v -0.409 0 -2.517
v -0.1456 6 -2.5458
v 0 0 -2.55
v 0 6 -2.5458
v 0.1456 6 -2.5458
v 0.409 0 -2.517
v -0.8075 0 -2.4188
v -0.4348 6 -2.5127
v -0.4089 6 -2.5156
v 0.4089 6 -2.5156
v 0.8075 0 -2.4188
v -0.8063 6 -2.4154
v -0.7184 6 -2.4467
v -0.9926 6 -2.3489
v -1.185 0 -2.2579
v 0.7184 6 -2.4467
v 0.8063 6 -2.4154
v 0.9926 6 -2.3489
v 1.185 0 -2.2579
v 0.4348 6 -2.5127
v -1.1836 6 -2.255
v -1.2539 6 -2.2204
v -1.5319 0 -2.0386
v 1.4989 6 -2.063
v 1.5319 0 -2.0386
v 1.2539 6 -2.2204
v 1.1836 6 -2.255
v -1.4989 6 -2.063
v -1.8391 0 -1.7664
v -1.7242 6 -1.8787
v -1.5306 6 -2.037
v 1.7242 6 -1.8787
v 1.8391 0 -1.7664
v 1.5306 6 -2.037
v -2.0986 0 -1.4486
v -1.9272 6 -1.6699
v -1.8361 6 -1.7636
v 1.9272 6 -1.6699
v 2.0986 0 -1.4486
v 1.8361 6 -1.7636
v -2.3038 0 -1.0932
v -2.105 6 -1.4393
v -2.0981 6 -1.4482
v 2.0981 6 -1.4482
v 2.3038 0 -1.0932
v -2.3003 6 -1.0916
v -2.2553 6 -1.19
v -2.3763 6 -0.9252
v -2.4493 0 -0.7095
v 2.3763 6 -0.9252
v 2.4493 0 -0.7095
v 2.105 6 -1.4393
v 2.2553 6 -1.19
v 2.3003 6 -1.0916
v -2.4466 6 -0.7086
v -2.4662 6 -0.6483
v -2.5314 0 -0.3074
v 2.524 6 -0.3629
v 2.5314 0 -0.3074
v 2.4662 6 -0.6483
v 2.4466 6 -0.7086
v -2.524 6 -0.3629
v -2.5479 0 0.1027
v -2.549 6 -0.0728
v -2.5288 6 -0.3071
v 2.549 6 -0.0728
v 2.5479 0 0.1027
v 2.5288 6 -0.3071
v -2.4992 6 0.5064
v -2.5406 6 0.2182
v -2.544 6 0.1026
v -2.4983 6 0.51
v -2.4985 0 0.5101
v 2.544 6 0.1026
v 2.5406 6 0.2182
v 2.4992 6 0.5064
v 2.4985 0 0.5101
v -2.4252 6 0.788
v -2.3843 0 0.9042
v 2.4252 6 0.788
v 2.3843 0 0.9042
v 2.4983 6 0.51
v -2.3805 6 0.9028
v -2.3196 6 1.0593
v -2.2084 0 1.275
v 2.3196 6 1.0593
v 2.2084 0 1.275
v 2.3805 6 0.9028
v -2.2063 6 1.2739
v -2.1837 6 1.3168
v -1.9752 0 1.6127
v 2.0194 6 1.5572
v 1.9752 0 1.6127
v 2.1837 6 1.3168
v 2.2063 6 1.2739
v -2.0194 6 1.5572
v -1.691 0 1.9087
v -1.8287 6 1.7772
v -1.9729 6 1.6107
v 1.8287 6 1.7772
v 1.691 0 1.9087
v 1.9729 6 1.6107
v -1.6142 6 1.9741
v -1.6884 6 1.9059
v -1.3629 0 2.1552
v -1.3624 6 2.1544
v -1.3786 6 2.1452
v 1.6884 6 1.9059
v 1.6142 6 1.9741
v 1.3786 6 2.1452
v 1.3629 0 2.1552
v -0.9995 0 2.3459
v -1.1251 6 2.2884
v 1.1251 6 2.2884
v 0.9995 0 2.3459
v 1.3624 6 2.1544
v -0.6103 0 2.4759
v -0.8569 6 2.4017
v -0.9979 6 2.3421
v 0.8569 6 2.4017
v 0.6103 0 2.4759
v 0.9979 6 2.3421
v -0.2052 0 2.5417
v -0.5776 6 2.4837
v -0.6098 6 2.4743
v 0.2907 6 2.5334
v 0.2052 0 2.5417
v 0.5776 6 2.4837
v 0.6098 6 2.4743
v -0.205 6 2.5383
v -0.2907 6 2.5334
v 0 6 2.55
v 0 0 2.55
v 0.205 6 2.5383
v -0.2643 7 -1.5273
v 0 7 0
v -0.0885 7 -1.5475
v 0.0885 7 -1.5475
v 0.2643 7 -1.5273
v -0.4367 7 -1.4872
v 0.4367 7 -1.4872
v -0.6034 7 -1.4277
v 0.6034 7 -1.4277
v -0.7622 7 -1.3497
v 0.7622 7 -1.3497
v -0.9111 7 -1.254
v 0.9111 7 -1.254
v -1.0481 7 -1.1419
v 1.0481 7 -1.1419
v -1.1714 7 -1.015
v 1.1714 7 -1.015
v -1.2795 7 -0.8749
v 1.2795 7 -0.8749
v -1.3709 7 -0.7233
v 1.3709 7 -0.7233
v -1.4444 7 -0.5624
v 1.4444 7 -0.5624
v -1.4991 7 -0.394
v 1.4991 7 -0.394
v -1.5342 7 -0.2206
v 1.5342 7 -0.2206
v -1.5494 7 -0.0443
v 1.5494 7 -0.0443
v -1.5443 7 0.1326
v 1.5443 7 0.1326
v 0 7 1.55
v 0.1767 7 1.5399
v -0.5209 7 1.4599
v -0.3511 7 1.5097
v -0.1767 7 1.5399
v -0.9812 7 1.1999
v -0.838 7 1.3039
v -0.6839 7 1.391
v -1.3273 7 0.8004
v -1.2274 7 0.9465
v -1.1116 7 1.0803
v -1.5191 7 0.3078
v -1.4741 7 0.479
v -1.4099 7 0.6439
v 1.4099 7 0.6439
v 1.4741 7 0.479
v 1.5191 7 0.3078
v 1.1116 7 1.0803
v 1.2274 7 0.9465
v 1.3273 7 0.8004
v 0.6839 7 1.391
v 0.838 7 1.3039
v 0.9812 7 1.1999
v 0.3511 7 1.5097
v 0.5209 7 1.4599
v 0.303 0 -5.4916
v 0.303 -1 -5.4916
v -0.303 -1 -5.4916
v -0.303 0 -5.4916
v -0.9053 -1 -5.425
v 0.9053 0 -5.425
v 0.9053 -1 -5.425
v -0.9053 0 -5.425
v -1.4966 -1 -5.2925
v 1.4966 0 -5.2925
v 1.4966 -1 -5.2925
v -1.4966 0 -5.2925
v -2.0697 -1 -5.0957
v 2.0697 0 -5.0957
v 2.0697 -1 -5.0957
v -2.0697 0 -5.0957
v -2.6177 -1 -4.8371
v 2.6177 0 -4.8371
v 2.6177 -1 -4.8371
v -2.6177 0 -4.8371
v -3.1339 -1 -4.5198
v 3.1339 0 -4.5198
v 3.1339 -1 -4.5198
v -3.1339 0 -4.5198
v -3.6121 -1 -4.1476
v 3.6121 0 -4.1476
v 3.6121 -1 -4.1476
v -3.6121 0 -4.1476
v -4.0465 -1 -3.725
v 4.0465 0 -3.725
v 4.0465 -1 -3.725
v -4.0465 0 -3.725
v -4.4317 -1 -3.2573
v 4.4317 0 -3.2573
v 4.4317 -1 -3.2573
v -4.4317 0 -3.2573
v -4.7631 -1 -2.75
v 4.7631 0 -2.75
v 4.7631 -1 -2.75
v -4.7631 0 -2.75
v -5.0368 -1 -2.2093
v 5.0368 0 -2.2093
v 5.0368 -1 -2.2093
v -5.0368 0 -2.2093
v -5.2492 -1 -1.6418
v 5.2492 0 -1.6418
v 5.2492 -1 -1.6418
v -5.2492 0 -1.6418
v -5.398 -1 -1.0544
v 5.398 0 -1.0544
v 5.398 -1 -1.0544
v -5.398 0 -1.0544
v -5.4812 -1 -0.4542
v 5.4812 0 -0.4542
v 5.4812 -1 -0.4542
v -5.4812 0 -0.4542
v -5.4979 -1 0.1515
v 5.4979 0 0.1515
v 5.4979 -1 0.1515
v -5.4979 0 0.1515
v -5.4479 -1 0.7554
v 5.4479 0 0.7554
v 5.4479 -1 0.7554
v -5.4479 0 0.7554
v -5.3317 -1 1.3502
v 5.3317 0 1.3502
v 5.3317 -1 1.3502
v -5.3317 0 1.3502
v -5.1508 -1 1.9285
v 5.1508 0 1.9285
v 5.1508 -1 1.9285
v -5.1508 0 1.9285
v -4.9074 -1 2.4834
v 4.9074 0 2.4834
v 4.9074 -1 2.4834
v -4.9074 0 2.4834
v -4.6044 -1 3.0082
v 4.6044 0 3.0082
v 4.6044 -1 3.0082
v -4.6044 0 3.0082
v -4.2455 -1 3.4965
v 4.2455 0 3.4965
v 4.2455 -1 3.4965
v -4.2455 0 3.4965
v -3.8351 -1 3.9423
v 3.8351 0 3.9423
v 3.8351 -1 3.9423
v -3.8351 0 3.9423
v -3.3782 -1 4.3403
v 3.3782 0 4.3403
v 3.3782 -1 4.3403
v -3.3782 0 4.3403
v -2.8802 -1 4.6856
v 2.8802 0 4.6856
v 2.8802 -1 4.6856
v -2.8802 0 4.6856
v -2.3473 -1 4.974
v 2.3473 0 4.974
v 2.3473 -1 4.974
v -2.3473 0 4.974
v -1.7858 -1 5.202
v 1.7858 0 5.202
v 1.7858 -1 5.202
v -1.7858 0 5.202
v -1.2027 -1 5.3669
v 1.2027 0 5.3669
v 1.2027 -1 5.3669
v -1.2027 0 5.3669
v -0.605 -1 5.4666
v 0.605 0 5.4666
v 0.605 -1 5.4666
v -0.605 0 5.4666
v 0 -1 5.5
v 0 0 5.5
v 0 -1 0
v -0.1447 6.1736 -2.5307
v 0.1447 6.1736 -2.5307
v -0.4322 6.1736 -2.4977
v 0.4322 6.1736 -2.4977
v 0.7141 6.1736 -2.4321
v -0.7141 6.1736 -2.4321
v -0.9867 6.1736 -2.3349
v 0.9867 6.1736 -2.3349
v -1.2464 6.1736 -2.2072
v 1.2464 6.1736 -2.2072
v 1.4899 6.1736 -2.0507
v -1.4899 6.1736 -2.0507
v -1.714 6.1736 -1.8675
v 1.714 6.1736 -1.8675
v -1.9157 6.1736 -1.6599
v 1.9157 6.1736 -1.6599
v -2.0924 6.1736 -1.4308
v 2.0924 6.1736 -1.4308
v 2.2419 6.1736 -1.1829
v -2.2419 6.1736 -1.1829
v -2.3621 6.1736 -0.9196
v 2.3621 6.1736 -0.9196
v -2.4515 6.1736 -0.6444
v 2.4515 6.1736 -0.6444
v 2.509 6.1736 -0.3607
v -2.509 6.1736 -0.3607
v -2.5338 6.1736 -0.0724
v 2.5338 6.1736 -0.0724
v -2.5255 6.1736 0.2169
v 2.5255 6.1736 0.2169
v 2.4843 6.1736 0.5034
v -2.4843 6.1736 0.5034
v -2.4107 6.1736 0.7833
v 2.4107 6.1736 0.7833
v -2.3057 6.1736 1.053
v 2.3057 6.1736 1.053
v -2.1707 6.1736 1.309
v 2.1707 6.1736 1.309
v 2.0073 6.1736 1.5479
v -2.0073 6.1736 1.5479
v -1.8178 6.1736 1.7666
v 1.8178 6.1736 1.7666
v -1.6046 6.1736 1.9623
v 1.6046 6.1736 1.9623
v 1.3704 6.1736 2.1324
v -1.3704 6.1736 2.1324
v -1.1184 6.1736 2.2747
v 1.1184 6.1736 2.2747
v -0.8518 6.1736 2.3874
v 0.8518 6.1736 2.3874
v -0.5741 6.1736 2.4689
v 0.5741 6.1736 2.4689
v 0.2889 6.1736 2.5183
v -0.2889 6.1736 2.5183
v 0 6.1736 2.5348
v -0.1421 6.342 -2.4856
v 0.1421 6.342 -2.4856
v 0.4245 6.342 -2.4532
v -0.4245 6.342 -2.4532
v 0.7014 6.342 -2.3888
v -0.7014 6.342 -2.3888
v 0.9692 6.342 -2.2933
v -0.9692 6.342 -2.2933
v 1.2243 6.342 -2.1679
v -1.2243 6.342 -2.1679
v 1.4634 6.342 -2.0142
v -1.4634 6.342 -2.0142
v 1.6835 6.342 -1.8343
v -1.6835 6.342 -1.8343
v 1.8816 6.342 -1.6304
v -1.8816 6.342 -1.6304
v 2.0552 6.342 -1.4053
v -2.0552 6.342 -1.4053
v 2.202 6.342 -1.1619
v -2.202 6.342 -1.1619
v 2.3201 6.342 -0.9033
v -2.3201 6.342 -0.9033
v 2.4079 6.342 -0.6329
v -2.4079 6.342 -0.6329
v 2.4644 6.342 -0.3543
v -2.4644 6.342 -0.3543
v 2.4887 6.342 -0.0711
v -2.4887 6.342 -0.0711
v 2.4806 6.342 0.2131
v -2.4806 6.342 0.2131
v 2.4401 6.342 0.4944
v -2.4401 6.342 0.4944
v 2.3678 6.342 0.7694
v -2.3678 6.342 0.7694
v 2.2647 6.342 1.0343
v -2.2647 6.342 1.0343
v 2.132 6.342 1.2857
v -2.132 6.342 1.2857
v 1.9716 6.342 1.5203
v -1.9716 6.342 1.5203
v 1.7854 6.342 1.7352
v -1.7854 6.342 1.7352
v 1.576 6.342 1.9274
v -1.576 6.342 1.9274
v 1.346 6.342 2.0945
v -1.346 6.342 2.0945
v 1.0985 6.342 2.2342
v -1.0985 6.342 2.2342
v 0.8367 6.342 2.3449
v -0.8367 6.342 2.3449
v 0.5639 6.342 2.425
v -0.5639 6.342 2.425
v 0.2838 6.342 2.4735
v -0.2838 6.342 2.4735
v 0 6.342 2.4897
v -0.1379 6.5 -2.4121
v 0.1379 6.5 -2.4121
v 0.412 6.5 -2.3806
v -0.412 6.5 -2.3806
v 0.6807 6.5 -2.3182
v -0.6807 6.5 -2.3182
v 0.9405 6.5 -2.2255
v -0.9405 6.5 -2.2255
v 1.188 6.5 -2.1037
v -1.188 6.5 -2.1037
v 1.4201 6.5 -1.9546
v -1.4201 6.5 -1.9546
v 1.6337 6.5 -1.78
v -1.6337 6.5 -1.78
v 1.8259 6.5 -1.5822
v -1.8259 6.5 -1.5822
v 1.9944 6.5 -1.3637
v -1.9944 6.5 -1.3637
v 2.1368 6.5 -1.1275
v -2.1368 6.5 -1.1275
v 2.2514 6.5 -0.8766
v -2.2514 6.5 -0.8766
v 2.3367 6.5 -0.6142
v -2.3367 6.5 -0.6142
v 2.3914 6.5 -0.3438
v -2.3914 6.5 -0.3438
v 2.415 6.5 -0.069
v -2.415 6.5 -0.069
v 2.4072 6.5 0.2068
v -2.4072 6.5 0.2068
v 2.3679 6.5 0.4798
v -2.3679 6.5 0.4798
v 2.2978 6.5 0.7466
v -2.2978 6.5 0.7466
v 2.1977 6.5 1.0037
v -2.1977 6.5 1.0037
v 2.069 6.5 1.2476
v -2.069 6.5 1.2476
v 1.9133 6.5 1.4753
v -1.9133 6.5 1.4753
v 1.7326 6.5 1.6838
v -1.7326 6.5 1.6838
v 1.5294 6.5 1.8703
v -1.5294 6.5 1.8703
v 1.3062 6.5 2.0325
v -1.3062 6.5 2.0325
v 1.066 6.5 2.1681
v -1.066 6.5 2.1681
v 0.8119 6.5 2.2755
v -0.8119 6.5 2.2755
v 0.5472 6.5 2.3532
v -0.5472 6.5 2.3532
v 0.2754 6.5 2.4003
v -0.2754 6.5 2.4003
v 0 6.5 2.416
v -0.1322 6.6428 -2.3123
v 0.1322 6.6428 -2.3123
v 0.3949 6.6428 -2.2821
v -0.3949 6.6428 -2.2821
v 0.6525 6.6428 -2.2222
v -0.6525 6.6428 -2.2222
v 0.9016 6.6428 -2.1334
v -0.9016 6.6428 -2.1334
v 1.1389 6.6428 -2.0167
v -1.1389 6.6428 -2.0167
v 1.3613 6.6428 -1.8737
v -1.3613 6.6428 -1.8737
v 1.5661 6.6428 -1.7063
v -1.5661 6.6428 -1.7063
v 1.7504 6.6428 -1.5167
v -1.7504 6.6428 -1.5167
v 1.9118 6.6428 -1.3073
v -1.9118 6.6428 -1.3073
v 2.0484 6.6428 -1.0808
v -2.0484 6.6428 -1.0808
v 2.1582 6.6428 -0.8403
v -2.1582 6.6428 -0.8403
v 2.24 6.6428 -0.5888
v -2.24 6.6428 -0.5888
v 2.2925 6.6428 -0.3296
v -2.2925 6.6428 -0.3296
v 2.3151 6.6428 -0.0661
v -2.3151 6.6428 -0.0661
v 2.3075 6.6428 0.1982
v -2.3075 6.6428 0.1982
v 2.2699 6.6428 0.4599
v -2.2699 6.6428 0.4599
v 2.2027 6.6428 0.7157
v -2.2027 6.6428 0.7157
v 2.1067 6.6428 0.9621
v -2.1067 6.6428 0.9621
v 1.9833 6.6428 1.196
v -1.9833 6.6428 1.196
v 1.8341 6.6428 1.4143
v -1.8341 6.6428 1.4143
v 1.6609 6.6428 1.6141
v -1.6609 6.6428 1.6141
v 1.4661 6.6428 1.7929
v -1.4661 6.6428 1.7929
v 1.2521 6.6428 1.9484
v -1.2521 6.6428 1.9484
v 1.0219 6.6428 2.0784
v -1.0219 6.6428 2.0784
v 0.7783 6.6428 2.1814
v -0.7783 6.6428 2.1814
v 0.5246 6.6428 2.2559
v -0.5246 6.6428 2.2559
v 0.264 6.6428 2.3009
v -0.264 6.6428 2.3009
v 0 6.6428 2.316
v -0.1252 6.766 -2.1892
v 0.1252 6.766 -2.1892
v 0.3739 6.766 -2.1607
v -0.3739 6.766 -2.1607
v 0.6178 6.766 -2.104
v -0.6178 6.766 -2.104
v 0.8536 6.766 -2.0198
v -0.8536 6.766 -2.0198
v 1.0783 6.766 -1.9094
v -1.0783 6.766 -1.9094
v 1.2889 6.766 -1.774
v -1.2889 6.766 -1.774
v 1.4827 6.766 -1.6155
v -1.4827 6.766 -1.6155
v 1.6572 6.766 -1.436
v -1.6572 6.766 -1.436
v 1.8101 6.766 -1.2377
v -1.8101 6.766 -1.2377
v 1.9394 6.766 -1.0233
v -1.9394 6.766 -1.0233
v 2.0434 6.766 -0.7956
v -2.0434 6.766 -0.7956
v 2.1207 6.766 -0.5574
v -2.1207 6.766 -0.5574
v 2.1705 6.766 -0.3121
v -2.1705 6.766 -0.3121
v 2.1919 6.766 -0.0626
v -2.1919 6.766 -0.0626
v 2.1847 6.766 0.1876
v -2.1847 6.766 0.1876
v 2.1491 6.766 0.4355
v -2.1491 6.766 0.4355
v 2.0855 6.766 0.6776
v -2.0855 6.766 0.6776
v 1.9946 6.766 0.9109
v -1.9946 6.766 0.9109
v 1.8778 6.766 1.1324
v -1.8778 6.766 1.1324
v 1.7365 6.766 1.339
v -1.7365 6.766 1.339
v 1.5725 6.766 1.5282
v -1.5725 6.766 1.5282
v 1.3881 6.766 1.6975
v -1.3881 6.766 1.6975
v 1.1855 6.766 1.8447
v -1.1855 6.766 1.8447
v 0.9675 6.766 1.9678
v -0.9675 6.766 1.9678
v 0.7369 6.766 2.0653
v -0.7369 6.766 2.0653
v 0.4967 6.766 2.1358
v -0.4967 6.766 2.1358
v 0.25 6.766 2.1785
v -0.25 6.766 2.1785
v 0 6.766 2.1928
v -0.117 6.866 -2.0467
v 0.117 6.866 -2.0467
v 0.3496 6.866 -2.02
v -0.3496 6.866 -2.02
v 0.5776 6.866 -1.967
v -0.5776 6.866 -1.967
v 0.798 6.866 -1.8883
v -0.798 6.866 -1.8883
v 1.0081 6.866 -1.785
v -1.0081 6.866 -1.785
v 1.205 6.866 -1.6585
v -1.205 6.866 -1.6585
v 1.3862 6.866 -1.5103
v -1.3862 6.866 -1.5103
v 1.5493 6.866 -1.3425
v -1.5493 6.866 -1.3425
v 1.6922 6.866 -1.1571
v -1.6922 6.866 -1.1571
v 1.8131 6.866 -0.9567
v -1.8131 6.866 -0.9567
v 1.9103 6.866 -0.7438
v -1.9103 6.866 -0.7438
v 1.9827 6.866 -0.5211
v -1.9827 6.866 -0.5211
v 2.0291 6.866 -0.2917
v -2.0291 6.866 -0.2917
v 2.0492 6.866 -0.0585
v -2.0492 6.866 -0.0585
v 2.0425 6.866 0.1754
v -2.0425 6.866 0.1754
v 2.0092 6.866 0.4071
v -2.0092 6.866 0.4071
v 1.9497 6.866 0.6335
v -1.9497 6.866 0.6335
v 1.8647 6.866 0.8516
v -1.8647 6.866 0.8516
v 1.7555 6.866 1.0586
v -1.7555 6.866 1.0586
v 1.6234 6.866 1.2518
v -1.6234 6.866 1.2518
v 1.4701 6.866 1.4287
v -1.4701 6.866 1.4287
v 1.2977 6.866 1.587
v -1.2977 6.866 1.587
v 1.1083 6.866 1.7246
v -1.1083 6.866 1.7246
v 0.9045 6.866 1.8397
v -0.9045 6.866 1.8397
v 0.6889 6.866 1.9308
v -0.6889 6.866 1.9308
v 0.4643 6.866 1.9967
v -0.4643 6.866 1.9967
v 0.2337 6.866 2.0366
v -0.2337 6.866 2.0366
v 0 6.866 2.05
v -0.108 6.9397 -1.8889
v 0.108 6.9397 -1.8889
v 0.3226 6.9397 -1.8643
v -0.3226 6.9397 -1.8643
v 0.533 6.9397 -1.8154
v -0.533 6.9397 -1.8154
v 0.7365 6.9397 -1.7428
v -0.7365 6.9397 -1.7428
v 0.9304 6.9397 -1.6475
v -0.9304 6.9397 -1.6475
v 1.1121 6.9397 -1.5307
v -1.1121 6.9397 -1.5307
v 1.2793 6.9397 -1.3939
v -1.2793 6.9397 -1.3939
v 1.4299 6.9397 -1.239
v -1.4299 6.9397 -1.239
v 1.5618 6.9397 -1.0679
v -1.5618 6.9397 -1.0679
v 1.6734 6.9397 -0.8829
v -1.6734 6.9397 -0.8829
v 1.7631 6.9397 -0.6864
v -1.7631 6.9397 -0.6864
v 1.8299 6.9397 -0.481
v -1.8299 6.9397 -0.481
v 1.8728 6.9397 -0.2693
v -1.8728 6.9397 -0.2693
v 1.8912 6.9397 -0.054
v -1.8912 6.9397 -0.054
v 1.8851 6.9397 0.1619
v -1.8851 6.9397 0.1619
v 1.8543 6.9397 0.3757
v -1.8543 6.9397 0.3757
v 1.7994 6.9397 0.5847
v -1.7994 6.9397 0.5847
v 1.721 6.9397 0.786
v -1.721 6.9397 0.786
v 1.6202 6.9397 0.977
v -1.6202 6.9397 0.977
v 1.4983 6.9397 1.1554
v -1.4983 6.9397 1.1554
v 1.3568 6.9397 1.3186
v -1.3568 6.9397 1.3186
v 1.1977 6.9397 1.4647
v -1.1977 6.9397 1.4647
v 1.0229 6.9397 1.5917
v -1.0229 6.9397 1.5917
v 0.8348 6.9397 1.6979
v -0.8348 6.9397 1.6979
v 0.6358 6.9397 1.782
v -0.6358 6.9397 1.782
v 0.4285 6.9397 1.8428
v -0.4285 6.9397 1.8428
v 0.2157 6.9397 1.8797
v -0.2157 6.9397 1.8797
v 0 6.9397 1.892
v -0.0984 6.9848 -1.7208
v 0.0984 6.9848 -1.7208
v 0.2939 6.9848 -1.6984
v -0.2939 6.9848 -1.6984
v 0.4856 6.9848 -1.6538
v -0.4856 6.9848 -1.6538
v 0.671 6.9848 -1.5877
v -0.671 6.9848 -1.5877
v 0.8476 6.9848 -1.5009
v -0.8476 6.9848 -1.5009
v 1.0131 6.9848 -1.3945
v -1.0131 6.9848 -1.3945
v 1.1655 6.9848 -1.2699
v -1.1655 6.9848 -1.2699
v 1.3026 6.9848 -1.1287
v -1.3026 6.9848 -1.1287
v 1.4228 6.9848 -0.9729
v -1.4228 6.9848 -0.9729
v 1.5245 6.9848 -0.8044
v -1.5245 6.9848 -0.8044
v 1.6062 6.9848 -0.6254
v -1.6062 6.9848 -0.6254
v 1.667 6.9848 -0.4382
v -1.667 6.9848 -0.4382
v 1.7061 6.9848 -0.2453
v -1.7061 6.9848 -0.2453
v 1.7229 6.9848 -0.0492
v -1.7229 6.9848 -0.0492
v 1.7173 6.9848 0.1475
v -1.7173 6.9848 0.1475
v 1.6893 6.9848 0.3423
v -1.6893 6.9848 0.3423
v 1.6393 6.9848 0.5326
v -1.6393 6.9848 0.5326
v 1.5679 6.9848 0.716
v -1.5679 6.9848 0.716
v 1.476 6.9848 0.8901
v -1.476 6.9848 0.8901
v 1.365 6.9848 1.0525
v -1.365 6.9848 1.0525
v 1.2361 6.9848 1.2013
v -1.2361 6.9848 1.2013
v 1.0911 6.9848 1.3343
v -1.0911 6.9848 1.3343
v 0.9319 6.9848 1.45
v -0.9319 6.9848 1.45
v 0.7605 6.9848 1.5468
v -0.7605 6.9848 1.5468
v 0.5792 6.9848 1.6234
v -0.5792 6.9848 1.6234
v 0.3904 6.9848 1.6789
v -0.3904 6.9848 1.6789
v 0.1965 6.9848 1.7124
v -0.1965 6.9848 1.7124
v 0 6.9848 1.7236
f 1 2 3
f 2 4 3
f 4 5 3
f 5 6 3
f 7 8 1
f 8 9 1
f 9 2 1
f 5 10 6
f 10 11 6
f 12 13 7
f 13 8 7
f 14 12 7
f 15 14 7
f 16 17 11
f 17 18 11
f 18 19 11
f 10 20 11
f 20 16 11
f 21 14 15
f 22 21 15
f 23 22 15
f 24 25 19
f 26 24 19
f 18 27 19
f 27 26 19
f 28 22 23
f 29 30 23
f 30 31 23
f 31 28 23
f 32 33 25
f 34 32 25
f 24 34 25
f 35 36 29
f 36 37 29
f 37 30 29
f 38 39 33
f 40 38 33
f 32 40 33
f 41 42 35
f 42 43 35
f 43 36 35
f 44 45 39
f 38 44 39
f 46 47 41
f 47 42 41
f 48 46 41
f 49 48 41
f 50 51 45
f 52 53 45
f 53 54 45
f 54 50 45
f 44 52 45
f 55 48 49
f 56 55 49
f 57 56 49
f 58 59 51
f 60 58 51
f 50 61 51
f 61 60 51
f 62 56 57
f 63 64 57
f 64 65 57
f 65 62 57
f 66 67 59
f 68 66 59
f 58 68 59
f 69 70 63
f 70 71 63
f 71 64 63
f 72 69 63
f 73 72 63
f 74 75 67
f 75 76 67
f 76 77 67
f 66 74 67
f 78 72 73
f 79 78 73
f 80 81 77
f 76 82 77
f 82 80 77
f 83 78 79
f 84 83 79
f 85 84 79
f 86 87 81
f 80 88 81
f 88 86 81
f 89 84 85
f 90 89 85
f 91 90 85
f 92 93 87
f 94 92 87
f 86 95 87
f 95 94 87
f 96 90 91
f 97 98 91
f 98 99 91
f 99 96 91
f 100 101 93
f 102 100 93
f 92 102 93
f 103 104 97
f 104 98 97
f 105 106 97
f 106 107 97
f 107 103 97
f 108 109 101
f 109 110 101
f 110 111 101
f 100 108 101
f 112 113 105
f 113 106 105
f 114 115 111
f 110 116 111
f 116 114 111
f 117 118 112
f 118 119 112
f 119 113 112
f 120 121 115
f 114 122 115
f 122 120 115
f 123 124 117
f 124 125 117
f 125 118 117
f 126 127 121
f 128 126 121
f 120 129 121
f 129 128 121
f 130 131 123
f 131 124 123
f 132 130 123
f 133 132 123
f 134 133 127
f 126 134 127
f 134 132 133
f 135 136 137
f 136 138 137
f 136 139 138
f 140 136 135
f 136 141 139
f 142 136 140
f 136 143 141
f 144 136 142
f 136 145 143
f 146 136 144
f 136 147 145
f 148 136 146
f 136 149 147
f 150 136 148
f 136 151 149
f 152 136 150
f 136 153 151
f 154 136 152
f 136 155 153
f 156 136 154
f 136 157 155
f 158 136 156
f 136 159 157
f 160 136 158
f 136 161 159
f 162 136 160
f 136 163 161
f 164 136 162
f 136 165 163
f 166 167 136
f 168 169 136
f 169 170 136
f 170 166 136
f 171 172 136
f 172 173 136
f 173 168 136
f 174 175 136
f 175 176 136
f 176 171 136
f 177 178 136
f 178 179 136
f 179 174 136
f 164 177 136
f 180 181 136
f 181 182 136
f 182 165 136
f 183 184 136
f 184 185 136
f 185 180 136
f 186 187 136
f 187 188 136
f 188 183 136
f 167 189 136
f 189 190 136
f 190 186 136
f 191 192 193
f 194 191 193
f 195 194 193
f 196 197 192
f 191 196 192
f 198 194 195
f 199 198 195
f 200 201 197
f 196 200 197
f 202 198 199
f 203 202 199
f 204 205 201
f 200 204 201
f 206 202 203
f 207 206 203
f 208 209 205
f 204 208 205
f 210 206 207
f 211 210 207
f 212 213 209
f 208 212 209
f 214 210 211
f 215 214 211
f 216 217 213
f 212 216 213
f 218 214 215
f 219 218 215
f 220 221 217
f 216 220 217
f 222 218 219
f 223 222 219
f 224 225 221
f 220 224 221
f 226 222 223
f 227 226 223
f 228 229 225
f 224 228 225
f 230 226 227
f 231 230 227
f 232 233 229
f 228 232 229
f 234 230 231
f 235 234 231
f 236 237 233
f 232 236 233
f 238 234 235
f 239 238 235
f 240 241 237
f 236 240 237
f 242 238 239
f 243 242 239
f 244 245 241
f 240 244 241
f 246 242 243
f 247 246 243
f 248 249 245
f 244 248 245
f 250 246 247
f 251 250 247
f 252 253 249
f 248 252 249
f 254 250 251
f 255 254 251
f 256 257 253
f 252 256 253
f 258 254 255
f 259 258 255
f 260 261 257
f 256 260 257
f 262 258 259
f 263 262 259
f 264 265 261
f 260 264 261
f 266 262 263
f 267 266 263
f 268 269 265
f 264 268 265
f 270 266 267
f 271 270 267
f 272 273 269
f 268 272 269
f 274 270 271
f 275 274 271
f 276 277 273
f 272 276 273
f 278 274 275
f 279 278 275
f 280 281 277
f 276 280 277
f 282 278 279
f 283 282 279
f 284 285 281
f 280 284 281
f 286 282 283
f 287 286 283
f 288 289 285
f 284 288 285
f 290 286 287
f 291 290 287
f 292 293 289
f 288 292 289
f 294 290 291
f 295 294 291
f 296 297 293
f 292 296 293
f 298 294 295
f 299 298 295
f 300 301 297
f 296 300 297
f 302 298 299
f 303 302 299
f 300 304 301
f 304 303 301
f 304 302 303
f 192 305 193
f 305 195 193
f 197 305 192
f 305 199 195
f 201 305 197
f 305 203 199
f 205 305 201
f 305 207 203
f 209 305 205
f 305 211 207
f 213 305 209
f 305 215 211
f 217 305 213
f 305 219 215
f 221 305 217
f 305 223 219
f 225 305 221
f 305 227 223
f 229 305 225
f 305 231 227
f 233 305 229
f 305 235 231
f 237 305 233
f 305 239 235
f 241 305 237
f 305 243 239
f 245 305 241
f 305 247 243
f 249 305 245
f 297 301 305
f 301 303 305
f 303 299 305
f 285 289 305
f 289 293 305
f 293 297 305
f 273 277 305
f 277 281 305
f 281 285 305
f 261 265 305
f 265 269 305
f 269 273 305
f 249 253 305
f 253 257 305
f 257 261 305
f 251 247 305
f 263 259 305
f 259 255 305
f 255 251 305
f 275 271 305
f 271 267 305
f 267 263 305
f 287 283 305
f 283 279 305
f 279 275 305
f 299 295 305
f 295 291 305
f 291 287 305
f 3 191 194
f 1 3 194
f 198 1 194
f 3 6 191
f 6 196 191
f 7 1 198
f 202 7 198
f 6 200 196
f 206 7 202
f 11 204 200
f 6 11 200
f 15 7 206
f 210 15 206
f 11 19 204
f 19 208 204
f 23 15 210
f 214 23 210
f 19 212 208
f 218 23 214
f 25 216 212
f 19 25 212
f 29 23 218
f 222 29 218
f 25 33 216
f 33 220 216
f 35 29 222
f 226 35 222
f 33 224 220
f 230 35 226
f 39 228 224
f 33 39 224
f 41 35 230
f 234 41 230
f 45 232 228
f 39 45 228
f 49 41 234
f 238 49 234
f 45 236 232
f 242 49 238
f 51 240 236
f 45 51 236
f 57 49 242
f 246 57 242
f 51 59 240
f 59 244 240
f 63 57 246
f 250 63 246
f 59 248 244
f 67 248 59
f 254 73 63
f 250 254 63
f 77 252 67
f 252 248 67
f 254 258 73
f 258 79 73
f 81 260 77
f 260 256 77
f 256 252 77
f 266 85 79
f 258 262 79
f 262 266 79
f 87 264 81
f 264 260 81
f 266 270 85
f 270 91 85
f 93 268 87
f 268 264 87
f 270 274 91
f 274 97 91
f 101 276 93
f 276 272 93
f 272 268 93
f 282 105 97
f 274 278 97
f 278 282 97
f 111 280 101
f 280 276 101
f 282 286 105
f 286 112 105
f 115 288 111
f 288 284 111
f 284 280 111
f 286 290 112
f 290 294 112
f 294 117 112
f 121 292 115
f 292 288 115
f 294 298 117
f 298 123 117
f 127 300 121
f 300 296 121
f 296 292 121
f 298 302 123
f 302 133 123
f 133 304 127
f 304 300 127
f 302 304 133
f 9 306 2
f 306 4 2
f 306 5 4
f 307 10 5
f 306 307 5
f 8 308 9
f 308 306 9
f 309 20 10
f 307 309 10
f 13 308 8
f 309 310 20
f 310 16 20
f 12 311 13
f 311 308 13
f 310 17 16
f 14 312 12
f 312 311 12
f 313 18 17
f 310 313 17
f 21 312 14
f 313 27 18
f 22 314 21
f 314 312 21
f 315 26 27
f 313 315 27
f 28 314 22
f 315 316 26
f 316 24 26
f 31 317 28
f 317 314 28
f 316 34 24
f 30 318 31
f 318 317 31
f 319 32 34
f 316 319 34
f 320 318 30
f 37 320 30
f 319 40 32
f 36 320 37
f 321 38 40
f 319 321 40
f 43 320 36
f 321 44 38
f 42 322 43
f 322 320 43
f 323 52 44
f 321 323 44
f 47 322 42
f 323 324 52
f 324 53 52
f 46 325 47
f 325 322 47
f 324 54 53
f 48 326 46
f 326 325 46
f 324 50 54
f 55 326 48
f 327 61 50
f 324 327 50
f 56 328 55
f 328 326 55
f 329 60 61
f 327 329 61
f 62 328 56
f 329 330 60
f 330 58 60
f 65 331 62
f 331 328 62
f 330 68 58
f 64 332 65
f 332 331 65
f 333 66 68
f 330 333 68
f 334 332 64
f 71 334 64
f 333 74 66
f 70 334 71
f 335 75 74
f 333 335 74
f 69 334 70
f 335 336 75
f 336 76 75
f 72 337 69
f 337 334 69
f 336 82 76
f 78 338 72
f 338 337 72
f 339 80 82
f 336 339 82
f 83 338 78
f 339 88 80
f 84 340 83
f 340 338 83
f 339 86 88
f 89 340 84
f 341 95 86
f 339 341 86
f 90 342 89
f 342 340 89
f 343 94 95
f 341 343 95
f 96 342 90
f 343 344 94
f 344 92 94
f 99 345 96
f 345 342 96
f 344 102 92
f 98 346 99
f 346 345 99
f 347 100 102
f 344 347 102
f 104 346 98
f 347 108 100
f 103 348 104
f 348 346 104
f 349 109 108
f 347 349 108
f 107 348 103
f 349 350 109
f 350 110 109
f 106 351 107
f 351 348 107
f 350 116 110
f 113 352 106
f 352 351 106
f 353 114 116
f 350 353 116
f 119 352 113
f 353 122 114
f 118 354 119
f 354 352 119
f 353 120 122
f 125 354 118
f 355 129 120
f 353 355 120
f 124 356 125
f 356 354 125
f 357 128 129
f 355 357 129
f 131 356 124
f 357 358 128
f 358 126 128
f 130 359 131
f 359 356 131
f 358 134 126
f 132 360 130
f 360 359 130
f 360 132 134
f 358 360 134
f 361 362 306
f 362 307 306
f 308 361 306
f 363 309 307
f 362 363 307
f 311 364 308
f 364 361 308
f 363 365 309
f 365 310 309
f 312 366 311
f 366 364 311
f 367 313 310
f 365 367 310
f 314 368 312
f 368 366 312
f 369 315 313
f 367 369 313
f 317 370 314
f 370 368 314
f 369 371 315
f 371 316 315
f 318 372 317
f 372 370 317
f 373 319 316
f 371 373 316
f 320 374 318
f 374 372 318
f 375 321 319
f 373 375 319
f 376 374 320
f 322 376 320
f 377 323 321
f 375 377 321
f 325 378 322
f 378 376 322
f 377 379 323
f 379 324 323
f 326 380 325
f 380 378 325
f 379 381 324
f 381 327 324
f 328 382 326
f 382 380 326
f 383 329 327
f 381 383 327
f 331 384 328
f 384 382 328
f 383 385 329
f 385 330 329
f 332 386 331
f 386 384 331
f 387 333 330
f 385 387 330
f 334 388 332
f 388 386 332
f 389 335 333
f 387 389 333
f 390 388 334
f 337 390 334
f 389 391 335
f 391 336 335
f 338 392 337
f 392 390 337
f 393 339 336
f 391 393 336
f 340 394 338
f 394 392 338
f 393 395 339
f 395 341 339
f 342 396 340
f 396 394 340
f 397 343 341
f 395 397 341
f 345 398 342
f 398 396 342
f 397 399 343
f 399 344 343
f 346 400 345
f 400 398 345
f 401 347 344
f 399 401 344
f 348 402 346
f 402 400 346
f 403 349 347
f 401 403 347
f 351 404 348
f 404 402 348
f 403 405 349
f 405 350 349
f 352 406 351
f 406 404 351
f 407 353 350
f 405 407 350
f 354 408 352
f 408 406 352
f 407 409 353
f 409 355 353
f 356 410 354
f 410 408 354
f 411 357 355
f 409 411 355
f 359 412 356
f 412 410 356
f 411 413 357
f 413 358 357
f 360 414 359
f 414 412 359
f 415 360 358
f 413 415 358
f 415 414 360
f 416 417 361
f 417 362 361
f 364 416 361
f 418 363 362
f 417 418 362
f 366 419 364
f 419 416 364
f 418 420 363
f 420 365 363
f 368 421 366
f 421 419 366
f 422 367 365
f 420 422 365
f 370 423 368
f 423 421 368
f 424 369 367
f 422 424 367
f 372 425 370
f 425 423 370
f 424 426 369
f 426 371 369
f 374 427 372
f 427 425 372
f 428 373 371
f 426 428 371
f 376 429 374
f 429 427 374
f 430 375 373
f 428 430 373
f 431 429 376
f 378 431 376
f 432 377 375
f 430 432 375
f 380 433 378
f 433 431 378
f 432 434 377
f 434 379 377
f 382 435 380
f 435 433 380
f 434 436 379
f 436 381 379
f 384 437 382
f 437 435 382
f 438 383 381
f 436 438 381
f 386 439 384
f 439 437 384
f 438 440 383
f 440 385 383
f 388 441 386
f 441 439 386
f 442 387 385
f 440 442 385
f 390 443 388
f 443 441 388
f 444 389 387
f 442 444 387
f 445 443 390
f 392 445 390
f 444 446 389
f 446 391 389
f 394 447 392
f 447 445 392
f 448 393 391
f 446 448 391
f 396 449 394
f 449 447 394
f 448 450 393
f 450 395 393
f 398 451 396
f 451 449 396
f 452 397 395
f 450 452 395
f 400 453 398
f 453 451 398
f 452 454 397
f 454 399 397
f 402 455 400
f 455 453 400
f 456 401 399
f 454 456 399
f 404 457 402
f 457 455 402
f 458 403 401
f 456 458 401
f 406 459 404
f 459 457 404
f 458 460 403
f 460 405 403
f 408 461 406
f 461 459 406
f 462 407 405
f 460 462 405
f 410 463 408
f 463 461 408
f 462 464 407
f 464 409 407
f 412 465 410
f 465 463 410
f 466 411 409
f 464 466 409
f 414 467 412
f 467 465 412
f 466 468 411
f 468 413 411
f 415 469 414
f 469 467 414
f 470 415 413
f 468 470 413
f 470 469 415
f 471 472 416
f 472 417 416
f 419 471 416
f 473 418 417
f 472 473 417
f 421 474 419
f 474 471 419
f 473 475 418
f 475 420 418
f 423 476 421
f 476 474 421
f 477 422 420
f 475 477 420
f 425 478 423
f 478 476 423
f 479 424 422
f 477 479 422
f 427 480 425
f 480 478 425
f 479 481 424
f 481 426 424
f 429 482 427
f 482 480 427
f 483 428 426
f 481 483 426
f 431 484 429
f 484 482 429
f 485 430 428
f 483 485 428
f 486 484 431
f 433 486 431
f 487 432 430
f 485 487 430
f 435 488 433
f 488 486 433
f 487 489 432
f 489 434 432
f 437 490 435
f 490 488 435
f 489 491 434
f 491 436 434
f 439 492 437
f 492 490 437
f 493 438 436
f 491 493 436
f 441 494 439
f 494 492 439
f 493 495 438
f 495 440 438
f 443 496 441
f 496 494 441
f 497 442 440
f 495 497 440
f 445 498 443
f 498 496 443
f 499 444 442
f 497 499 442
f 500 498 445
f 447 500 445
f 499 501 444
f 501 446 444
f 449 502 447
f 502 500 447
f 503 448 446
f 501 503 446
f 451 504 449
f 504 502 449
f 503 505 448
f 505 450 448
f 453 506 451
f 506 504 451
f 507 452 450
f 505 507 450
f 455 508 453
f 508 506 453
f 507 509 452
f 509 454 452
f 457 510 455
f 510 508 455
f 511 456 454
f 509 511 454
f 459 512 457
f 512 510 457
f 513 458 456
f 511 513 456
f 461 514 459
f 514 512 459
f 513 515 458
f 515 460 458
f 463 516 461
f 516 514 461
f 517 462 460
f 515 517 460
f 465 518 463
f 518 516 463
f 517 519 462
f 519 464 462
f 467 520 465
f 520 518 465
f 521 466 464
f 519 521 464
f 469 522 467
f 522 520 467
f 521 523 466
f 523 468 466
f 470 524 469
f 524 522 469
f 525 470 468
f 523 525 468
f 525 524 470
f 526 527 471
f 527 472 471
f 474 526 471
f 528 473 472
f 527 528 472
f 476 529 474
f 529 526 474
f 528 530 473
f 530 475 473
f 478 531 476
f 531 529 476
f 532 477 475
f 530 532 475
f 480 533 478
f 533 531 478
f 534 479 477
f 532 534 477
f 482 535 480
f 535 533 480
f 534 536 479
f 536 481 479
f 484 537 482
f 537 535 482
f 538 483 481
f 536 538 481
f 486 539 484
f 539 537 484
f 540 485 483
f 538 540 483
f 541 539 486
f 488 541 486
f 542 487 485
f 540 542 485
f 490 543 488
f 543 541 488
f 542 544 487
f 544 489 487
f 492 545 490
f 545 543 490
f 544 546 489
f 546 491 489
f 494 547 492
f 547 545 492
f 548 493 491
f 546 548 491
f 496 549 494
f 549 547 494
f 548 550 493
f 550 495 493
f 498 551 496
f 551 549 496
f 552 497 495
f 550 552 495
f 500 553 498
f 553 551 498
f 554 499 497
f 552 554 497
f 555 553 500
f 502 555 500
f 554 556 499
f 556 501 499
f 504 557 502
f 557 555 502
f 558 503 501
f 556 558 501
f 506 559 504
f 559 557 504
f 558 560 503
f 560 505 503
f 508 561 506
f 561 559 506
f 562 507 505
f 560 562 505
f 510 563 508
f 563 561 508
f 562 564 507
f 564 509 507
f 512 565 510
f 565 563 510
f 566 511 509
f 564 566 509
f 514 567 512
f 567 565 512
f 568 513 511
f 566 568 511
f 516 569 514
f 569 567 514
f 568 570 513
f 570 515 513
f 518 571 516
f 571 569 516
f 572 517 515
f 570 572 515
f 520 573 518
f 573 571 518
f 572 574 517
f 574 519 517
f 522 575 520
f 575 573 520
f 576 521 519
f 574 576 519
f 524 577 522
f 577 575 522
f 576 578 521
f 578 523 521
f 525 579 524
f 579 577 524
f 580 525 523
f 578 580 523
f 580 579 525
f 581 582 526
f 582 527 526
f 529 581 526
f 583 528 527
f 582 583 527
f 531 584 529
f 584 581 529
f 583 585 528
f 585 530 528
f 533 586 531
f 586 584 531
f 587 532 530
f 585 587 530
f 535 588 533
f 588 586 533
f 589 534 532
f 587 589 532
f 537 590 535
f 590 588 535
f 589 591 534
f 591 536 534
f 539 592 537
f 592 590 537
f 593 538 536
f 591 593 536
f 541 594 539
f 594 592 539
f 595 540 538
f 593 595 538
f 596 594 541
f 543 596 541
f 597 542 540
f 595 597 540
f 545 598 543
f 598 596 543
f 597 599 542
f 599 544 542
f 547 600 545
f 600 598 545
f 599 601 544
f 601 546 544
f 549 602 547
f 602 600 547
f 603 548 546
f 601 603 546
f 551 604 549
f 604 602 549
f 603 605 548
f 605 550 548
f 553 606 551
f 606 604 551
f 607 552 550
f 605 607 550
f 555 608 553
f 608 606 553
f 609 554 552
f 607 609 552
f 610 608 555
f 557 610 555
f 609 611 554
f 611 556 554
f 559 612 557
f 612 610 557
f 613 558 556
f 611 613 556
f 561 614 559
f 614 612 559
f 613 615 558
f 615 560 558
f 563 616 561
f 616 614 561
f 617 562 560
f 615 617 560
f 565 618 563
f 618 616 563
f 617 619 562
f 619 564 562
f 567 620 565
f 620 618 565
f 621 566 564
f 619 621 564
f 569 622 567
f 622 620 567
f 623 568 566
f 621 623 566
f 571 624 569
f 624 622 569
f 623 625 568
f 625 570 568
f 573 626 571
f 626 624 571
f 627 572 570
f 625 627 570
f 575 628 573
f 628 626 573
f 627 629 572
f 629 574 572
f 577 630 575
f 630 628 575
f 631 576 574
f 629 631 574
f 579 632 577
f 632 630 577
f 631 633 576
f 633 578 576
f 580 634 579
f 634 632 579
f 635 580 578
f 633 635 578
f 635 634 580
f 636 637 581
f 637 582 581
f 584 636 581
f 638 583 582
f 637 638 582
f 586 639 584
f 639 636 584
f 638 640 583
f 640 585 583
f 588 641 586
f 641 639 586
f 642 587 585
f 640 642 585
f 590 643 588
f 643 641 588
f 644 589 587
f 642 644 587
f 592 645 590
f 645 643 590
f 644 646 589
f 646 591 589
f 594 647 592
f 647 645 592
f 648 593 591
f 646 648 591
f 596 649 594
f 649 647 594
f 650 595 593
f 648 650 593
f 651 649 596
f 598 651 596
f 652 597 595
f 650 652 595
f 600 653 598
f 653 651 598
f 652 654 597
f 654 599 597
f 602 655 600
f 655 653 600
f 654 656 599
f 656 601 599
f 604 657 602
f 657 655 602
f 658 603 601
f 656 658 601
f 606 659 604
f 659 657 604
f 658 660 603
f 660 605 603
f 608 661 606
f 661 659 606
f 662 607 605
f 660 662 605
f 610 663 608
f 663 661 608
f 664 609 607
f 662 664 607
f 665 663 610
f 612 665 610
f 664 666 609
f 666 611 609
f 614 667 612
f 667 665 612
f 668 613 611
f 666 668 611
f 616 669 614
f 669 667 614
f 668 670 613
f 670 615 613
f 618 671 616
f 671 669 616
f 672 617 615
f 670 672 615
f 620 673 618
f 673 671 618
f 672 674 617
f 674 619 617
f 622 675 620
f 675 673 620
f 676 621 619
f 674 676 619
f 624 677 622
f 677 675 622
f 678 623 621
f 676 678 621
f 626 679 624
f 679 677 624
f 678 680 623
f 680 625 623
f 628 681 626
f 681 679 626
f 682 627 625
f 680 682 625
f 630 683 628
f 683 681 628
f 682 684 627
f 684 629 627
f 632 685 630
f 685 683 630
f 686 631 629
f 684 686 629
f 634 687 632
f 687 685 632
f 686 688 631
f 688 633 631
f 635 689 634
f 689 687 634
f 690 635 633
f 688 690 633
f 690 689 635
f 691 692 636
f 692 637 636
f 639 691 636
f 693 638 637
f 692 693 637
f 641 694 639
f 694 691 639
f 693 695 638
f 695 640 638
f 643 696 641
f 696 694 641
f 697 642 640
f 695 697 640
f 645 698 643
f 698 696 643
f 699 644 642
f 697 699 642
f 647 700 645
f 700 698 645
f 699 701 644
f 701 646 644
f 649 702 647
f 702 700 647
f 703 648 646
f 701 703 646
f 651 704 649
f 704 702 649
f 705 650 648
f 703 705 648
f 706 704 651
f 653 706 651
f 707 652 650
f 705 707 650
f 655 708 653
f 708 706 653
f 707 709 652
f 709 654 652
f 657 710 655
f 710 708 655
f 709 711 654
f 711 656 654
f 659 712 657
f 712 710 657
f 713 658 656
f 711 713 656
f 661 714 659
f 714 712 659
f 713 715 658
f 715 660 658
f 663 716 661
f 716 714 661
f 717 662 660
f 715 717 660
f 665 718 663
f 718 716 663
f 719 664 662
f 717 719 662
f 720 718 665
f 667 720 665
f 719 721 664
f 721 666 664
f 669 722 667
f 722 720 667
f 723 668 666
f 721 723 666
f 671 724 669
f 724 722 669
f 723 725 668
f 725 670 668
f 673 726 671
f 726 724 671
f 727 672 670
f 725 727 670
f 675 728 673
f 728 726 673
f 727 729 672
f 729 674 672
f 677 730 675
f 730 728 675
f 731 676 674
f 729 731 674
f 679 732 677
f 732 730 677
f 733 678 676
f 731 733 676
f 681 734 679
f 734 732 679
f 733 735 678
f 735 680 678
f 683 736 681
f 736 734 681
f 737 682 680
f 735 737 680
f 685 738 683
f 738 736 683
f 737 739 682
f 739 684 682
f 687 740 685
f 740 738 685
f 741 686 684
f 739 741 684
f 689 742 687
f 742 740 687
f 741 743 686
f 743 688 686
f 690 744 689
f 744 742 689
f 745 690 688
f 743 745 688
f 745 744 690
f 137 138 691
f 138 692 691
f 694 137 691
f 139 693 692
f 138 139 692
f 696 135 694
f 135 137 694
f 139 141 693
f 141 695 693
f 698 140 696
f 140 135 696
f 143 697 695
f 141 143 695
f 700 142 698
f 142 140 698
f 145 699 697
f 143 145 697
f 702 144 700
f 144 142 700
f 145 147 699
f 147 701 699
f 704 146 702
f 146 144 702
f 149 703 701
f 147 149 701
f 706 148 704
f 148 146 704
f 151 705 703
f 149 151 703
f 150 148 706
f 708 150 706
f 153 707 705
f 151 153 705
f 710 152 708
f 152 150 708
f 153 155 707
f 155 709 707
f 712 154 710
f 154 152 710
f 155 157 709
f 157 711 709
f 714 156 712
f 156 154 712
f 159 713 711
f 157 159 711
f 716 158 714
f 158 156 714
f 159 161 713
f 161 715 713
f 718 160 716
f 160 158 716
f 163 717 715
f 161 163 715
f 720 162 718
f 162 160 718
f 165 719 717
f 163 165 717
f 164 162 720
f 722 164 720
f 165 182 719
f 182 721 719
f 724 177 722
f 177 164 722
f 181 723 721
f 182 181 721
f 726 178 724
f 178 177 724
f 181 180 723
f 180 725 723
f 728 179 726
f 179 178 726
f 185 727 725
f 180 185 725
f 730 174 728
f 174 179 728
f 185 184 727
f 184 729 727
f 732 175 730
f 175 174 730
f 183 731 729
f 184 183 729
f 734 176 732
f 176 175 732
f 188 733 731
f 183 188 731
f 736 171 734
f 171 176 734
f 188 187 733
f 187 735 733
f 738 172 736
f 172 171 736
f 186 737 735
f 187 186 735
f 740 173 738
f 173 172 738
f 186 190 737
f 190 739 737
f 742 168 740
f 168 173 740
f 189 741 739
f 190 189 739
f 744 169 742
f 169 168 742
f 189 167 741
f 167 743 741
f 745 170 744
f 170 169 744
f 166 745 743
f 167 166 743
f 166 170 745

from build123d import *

# Parameters (mm, degrees)
SKETCH1_R           = 2.55
BOSS_EXTRUDE1_DEPTH = 7
SKETCH1_3_R         = 5.5
BOSS_EXTRUDE2_DEPTH = 1
FILLET1_R           = 1


with BuildPart() as part:
    # Sketch1 → Boss-Extrude1 (new body)
    with BuildSketch(Plane(origin=(0, 0, 0), x_dir=(1, 0, 0), z_dir=(0, 1, 0))):
        Circle(SKETCH1_R)
    extrude(amount=BOSS_EXTRUDE1_DEPTH)

    # Sketch1<3> → Boss-Extrude2 (add)
    with BuildSketch(Plane(origin=(0, 0, 0), x_dir=(1, 0, 0), z_dir=(0, 1, 0))):
        Circle(SKETCH1_3_R)
    extrude(amount=-BOSS_EXTRUDE2_DEPTH)

    # Fillet1
    fillet1_edges = [part.edges().sort_by_distance(p)[0] for p in [
        (-2.55, 7, 0),
    ]]
    fillet(fillet1_edges, radius=FILLET1_R)


solid = part.part
